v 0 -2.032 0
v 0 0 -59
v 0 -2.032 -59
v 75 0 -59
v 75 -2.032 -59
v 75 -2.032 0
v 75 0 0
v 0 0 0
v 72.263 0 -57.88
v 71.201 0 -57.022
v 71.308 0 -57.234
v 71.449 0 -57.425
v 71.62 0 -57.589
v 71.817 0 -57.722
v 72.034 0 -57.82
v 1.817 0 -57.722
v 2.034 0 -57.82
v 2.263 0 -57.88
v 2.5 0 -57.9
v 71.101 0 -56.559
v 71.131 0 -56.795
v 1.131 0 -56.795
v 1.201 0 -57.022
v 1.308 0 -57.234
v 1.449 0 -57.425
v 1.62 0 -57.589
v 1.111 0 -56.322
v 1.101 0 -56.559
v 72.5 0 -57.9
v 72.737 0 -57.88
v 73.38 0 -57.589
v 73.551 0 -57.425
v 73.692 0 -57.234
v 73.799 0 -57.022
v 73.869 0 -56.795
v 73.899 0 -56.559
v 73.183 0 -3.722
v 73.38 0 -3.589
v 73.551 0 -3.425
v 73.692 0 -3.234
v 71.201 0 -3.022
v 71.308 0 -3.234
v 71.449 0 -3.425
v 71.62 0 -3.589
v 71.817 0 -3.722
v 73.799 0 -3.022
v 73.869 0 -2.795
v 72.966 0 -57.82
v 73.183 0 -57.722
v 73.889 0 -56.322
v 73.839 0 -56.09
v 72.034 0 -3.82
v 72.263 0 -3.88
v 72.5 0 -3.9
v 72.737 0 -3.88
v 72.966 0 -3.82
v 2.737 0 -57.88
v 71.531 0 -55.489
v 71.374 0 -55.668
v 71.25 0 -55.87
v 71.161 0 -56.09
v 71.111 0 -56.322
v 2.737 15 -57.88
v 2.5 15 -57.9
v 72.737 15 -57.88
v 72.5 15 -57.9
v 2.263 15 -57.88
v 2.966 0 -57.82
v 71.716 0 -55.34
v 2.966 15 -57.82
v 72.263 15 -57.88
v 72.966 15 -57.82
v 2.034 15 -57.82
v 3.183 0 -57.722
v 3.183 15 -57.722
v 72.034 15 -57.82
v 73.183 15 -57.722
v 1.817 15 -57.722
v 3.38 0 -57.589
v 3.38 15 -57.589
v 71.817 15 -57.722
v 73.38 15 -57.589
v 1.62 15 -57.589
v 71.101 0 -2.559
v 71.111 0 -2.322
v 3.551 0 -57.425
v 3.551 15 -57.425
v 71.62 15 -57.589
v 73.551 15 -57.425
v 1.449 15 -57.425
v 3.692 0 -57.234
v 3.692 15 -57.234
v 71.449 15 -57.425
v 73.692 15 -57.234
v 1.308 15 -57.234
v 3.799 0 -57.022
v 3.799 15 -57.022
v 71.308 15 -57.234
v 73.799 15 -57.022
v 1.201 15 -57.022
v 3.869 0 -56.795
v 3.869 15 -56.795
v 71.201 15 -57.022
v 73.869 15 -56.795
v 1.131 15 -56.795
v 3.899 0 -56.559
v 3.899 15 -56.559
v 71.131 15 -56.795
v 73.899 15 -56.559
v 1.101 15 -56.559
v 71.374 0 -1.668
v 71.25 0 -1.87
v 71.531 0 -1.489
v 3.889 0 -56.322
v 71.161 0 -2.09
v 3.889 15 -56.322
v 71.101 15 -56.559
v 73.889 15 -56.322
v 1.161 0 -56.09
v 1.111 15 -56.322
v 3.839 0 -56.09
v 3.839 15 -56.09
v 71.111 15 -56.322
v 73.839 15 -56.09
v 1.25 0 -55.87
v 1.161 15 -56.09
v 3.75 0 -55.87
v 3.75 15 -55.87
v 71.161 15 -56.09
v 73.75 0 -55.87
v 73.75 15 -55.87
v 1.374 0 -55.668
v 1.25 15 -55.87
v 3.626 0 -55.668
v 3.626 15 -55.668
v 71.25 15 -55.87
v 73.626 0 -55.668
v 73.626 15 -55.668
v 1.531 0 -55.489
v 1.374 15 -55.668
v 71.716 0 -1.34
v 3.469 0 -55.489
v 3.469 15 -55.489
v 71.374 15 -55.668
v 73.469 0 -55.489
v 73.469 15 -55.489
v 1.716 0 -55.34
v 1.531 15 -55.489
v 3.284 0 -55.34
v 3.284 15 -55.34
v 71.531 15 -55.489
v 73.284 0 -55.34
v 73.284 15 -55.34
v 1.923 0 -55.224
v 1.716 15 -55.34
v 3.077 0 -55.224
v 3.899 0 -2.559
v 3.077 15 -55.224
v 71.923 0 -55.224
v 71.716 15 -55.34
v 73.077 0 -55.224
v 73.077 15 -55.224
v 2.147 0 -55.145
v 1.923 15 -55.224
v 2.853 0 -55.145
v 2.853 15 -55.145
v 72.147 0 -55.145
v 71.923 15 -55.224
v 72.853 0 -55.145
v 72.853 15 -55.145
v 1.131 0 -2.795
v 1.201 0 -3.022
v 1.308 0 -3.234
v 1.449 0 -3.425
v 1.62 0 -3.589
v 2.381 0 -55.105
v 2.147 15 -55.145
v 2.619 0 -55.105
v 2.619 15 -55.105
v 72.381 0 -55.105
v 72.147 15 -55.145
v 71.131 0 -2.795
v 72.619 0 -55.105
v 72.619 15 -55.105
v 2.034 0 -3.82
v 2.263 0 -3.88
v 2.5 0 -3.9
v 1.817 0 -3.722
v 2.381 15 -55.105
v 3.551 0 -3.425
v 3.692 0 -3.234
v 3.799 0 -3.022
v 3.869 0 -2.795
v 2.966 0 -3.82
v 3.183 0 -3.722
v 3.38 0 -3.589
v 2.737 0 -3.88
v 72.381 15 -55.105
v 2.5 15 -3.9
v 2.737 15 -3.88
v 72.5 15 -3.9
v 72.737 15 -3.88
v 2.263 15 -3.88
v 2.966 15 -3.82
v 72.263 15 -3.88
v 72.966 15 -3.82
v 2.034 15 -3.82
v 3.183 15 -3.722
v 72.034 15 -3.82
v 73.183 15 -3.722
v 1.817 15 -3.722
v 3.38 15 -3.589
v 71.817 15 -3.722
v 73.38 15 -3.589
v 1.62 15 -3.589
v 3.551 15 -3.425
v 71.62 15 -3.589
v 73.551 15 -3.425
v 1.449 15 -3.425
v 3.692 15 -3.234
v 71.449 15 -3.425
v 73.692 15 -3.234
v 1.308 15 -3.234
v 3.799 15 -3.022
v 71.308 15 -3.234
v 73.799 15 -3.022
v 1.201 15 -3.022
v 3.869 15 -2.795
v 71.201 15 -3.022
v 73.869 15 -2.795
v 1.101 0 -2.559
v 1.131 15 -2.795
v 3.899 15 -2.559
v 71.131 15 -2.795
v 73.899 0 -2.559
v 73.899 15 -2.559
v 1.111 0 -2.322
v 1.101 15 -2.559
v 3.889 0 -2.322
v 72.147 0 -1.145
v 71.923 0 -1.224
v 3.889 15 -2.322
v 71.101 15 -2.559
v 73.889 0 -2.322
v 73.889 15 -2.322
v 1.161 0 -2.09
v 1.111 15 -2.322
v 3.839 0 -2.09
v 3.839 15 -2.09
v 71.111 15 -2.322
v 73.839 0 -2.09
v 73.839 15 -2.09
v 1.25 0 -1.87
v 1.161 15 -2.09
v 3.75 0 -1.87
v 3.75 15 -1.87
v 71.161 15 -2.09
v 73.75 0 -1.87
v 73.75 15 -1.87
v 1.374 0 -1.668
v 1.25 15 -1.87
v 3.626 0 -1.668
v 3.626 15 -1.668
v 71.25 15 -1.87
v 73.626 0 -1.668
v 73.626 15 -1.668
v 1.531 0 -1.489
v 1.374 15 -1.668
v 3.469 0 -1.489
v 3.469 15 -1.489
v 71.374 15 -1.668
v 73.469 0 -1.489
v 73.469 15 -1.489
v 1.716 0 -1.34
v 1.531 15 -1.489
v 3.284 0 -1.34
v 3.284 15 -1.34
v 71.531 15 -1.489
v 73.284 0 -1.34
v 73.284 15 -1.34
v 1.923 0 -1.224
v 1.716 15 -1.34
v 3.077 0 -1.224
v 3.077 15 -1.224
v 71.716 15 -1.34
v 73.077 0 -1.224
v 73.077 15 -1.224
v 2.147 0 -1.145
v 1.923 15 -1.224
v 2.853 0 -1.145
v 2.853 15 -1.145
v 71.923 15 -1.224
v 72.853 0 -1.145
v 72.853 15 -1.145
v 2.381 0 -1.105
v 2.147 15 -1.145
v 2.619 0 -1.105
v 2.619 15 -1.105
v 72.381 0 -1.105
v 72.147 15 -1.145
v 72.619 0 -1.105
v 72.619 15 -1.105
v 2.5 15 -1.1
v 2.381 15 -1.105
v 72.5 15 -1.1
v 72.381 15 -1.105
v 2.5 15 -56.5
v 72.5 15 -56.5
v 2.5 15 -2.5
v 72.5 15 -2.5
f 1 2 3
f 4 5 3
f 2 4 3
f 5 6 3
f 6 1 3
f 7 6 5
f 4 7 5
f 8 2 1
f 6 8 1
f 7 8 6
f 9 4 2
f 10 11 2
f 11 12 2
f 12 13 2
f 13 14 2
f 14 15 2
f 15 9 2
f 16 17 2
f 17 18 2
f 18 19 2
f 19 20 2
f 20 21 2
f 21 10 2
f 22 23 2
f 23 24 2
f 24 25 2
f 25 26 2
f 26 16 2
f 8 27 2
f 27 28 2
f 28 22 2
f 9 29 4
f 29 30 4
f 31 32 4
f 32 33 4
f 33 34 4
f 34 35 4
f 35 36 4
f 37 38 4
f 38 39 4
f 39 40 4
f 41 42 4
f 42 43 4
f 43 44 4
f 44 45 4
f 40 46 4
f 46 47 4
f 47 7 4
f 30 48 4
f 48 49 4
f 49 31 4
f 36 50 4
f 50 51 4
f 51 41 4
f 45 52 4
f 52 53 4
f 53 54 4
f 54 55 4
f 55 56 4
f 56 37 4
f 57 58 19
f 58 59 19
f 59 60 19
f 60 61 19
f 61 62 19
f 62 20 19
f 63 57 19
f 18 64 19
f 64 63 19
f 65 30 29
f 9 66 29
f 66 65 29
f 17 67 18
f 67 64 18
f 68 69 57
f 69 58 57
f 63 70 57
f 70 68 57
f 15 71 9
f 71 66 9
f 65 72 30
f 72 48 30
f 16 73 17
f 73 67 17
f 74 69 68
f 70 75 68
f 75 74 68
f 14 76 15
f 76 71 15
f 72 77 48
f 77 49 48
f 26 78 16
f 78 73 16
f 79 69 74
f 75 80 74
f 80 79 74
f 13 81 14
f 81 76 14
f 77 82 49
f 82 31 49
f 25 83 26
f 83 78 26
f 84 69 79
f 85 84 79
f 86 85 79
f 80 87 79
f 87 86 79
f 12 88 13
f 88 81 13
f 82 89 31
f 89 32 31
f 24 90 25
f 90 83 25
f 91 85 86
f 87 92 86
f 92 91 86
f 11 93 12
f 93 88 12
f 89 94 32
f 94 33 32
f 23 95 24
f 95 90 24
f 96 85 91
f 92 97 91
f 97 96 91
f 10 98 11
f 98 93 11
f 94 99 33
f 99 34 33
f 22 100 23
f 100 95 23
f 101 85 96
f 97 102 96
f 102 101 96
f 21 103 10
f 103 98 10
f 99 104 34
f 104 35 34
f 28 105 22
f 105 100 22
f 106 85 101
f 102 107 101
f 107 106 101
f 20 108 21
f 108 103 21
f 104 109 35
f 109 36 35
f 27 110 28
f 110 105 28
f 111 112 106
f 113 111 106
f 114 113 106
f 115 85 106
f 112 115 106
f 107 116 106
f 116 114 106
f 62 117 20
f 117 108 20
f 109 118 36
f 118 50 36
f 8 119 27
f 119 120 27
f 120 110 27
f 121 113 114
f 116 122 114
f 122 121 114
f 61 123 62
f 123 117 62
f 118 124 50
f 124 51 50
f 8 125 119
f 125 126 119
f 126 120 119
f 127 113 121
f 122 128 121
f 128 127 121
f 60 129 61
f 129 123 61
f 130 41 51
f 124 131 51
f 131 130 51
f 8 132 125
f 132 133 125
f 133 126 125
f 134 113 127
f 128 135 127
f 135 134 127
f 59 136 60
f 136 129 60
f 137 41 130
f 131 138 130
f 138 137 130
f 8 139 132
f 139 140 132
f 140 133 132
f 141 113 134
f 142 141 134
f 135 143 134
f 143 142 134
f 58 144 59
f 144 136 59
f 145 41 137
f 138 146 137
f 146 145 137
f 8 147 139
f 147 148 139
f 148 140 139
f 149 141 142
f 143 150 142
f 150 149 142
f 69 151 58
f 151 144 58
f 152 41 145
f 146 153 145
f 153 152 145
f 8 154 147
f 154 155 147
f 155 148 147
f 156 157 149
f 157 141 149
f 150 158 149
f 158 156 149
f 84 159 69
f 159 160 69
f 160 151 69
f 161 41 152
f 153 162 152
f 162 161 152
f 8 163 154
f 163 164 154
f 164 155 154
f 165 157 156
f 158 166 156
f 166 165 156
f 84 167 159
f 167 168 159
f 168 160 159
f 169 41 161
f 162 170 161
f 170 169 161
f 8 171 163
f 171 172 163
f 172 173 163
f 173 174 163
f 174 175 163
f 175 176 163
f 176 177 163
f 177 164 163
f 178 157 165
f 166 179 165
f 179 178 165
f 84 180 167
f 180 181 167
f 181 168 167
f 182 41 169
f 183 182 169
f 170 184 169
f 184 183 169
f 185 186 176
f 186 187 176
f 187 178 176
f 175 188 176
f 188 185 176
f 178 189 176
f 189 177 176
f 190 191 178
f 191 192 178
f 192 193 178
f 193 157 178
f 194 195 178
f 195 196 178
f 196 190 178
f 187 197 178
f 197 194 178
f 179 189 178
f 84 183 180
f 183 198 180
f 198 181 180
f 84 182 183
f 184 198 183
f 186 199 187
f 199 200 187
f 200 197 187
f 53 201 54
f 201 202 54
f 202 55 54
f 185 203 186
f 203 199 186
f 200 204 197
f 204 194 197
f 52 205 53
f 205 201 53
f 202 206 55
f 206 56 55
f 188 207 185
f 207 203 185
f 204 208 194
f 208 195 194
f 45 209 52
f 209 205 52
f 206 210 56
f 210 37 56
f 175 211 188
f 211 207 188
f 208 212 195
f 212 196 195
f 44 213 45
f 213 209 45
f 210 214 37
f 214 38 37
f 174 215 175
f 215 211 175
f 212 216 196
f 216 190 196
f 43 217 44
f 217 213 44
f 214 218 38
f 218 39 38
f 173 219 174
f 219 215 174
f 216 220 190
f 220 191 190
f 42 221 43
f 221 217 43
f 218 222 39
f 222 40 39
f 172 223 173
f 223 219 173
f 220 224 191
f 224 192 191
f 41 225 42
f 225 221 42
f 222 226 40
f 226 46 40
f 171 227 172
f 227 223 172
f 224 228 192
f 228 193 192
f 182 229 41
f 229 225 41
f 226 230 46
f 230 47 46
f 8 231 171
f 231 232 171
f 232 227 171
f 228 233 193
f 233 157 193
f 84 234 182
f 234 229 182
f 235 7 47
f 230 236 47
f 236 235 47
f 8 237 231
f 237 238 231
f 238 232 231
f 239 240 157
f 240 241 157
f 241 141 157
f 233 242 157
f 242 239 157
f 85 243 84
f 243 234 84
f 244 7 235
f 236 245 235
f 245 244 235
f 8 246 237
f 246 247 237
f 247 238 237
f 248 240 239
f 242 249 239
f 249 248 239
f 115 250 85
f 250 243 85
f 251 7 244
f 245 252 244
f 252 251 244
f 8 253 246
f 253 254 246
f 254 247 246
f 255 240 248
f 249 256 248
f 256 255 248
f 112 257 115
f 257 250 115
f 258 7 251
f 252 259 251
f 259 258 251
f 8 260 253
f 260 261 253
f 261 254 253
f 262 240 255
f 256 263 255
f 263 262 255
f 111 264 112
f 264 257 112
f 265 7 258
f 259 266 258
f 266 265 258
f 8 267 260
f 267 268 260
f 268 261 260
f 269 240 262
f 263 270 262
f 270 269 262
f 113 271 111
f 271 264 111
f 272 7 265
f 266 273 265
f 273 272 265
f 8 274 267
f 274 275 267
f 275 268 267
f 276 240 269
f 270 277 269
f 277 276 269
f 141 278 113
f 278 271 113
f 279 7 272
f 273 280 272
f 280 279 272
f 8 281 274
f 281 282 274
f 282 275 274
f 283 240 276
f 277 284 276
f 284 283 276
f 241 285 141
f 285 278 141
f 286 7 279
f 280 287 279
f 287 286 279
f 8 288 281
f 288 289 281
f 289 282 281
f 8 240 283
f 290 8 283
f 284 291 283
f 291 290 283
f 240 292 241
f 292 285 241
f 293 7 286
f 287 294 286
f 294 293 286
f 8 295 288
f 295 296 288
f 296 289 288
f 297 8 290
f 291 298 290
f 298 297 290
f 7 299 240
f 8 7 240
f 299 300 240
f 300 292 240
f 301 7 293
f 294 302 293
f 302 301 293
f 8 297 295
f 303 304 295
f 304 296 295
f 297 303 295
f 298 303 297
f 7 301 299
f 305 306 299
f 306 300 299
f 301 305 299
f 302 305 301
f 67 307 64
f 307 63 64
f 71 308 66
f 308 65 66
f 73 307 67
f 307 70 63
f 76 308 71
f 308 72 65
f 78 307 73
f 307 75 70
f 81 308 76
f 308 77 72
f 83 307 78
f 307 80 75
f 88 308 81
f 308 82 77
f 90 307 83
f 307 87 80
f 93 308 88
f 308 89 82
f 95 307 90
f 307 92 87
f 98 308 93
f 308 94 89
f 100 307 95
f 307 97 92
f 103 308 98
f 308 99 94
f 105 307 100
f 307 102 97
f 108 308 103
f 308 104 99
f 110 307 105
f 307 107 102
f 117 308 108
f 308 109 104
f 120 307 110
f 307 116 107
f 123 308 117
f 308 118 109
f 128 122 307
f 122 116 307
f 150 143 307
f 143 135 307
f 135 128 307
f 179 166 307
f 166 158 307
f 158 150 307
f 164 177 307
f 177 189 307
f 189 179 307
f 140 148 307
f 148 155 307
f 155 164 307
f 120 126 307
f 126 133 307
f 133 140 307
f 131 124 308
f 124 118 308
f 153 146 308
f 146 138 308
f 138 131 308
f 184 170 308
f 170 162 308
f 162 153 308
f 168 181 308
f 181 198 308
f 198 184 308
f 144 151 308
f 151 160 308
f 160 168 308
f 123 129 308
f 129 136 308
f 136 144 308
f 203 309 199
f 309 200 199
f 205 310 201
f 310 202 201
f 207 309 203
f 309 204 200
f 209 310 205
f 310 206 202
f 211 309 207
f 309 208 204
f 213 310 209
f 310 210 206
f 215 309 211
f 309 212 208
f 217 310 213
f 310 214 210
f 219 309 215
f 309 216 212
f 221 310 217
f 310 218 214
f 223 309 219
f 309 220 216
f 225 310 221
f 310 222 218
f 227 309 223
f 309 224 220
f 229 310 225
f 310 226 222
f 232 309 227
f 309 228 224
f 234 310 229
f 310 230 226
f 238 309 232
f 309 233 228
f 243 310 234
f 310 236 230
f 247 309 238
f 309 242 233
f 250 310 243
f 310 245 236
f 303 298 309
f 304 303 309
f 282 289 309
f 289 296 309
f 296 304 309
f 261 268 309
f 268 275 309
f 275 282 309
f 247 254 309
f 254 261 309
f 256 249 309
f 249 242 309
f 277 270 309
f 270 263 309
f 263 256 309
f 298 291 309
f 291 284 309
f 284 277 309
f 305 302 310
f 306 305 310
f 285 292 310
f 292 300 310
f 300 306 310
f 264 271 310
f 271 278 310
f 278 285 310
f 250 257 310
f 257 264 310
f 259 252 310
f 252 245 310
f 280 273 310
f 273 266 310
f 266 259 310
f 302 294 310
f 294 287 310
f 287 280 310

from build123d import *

# Parameters (mm, degrees)
SKETCH1_W           = 75
SKETCH1_H           = 59
BOSS_EXTRUDE1_DEPTH = 2.032
SKETCH2_R           = 1.399999994
SKETCH2_R_2         = 1.4
BOSS_EXTRUDE2_DEPTH = 15


with BuildPart() as part:
    # Sketch1 → Boss-Extrude1 (new body)
    with BuildSketch(Plane(origin=(0, 0, 0), x_dir=(1, 0, 0), z_dir=(0, 1, 0))):
        with Locations((37.5, 29.5)):
            Rectangle(SKETCH1_W, SKETCH1_H)
    extrude(amount=-BOSS_EXTRUDE1_DEPTH)

    # Sketch2 → Boss-Extrude2 (add)
    with BuildSketch(Plane(origin=(0, 0, 0), x_dir=(1, 0, 0), z_dir=(0, 1, 0))):
        with Locations((2.5, 2.5)):
            Circle(SKETCH2_R)
        with Locations((72.5, 2.5)):
            Circle(SKETCH2_R_2)
        with Locations((72.5, 56.5)):
            Circle(SKETCH2_R_2)
        with Locations((2.5, 56.5)):
            Circle(SKETCH2_R)
    extrude(amount=BOSS_EXTRUDE2_DEPTH)


solid = part.part
